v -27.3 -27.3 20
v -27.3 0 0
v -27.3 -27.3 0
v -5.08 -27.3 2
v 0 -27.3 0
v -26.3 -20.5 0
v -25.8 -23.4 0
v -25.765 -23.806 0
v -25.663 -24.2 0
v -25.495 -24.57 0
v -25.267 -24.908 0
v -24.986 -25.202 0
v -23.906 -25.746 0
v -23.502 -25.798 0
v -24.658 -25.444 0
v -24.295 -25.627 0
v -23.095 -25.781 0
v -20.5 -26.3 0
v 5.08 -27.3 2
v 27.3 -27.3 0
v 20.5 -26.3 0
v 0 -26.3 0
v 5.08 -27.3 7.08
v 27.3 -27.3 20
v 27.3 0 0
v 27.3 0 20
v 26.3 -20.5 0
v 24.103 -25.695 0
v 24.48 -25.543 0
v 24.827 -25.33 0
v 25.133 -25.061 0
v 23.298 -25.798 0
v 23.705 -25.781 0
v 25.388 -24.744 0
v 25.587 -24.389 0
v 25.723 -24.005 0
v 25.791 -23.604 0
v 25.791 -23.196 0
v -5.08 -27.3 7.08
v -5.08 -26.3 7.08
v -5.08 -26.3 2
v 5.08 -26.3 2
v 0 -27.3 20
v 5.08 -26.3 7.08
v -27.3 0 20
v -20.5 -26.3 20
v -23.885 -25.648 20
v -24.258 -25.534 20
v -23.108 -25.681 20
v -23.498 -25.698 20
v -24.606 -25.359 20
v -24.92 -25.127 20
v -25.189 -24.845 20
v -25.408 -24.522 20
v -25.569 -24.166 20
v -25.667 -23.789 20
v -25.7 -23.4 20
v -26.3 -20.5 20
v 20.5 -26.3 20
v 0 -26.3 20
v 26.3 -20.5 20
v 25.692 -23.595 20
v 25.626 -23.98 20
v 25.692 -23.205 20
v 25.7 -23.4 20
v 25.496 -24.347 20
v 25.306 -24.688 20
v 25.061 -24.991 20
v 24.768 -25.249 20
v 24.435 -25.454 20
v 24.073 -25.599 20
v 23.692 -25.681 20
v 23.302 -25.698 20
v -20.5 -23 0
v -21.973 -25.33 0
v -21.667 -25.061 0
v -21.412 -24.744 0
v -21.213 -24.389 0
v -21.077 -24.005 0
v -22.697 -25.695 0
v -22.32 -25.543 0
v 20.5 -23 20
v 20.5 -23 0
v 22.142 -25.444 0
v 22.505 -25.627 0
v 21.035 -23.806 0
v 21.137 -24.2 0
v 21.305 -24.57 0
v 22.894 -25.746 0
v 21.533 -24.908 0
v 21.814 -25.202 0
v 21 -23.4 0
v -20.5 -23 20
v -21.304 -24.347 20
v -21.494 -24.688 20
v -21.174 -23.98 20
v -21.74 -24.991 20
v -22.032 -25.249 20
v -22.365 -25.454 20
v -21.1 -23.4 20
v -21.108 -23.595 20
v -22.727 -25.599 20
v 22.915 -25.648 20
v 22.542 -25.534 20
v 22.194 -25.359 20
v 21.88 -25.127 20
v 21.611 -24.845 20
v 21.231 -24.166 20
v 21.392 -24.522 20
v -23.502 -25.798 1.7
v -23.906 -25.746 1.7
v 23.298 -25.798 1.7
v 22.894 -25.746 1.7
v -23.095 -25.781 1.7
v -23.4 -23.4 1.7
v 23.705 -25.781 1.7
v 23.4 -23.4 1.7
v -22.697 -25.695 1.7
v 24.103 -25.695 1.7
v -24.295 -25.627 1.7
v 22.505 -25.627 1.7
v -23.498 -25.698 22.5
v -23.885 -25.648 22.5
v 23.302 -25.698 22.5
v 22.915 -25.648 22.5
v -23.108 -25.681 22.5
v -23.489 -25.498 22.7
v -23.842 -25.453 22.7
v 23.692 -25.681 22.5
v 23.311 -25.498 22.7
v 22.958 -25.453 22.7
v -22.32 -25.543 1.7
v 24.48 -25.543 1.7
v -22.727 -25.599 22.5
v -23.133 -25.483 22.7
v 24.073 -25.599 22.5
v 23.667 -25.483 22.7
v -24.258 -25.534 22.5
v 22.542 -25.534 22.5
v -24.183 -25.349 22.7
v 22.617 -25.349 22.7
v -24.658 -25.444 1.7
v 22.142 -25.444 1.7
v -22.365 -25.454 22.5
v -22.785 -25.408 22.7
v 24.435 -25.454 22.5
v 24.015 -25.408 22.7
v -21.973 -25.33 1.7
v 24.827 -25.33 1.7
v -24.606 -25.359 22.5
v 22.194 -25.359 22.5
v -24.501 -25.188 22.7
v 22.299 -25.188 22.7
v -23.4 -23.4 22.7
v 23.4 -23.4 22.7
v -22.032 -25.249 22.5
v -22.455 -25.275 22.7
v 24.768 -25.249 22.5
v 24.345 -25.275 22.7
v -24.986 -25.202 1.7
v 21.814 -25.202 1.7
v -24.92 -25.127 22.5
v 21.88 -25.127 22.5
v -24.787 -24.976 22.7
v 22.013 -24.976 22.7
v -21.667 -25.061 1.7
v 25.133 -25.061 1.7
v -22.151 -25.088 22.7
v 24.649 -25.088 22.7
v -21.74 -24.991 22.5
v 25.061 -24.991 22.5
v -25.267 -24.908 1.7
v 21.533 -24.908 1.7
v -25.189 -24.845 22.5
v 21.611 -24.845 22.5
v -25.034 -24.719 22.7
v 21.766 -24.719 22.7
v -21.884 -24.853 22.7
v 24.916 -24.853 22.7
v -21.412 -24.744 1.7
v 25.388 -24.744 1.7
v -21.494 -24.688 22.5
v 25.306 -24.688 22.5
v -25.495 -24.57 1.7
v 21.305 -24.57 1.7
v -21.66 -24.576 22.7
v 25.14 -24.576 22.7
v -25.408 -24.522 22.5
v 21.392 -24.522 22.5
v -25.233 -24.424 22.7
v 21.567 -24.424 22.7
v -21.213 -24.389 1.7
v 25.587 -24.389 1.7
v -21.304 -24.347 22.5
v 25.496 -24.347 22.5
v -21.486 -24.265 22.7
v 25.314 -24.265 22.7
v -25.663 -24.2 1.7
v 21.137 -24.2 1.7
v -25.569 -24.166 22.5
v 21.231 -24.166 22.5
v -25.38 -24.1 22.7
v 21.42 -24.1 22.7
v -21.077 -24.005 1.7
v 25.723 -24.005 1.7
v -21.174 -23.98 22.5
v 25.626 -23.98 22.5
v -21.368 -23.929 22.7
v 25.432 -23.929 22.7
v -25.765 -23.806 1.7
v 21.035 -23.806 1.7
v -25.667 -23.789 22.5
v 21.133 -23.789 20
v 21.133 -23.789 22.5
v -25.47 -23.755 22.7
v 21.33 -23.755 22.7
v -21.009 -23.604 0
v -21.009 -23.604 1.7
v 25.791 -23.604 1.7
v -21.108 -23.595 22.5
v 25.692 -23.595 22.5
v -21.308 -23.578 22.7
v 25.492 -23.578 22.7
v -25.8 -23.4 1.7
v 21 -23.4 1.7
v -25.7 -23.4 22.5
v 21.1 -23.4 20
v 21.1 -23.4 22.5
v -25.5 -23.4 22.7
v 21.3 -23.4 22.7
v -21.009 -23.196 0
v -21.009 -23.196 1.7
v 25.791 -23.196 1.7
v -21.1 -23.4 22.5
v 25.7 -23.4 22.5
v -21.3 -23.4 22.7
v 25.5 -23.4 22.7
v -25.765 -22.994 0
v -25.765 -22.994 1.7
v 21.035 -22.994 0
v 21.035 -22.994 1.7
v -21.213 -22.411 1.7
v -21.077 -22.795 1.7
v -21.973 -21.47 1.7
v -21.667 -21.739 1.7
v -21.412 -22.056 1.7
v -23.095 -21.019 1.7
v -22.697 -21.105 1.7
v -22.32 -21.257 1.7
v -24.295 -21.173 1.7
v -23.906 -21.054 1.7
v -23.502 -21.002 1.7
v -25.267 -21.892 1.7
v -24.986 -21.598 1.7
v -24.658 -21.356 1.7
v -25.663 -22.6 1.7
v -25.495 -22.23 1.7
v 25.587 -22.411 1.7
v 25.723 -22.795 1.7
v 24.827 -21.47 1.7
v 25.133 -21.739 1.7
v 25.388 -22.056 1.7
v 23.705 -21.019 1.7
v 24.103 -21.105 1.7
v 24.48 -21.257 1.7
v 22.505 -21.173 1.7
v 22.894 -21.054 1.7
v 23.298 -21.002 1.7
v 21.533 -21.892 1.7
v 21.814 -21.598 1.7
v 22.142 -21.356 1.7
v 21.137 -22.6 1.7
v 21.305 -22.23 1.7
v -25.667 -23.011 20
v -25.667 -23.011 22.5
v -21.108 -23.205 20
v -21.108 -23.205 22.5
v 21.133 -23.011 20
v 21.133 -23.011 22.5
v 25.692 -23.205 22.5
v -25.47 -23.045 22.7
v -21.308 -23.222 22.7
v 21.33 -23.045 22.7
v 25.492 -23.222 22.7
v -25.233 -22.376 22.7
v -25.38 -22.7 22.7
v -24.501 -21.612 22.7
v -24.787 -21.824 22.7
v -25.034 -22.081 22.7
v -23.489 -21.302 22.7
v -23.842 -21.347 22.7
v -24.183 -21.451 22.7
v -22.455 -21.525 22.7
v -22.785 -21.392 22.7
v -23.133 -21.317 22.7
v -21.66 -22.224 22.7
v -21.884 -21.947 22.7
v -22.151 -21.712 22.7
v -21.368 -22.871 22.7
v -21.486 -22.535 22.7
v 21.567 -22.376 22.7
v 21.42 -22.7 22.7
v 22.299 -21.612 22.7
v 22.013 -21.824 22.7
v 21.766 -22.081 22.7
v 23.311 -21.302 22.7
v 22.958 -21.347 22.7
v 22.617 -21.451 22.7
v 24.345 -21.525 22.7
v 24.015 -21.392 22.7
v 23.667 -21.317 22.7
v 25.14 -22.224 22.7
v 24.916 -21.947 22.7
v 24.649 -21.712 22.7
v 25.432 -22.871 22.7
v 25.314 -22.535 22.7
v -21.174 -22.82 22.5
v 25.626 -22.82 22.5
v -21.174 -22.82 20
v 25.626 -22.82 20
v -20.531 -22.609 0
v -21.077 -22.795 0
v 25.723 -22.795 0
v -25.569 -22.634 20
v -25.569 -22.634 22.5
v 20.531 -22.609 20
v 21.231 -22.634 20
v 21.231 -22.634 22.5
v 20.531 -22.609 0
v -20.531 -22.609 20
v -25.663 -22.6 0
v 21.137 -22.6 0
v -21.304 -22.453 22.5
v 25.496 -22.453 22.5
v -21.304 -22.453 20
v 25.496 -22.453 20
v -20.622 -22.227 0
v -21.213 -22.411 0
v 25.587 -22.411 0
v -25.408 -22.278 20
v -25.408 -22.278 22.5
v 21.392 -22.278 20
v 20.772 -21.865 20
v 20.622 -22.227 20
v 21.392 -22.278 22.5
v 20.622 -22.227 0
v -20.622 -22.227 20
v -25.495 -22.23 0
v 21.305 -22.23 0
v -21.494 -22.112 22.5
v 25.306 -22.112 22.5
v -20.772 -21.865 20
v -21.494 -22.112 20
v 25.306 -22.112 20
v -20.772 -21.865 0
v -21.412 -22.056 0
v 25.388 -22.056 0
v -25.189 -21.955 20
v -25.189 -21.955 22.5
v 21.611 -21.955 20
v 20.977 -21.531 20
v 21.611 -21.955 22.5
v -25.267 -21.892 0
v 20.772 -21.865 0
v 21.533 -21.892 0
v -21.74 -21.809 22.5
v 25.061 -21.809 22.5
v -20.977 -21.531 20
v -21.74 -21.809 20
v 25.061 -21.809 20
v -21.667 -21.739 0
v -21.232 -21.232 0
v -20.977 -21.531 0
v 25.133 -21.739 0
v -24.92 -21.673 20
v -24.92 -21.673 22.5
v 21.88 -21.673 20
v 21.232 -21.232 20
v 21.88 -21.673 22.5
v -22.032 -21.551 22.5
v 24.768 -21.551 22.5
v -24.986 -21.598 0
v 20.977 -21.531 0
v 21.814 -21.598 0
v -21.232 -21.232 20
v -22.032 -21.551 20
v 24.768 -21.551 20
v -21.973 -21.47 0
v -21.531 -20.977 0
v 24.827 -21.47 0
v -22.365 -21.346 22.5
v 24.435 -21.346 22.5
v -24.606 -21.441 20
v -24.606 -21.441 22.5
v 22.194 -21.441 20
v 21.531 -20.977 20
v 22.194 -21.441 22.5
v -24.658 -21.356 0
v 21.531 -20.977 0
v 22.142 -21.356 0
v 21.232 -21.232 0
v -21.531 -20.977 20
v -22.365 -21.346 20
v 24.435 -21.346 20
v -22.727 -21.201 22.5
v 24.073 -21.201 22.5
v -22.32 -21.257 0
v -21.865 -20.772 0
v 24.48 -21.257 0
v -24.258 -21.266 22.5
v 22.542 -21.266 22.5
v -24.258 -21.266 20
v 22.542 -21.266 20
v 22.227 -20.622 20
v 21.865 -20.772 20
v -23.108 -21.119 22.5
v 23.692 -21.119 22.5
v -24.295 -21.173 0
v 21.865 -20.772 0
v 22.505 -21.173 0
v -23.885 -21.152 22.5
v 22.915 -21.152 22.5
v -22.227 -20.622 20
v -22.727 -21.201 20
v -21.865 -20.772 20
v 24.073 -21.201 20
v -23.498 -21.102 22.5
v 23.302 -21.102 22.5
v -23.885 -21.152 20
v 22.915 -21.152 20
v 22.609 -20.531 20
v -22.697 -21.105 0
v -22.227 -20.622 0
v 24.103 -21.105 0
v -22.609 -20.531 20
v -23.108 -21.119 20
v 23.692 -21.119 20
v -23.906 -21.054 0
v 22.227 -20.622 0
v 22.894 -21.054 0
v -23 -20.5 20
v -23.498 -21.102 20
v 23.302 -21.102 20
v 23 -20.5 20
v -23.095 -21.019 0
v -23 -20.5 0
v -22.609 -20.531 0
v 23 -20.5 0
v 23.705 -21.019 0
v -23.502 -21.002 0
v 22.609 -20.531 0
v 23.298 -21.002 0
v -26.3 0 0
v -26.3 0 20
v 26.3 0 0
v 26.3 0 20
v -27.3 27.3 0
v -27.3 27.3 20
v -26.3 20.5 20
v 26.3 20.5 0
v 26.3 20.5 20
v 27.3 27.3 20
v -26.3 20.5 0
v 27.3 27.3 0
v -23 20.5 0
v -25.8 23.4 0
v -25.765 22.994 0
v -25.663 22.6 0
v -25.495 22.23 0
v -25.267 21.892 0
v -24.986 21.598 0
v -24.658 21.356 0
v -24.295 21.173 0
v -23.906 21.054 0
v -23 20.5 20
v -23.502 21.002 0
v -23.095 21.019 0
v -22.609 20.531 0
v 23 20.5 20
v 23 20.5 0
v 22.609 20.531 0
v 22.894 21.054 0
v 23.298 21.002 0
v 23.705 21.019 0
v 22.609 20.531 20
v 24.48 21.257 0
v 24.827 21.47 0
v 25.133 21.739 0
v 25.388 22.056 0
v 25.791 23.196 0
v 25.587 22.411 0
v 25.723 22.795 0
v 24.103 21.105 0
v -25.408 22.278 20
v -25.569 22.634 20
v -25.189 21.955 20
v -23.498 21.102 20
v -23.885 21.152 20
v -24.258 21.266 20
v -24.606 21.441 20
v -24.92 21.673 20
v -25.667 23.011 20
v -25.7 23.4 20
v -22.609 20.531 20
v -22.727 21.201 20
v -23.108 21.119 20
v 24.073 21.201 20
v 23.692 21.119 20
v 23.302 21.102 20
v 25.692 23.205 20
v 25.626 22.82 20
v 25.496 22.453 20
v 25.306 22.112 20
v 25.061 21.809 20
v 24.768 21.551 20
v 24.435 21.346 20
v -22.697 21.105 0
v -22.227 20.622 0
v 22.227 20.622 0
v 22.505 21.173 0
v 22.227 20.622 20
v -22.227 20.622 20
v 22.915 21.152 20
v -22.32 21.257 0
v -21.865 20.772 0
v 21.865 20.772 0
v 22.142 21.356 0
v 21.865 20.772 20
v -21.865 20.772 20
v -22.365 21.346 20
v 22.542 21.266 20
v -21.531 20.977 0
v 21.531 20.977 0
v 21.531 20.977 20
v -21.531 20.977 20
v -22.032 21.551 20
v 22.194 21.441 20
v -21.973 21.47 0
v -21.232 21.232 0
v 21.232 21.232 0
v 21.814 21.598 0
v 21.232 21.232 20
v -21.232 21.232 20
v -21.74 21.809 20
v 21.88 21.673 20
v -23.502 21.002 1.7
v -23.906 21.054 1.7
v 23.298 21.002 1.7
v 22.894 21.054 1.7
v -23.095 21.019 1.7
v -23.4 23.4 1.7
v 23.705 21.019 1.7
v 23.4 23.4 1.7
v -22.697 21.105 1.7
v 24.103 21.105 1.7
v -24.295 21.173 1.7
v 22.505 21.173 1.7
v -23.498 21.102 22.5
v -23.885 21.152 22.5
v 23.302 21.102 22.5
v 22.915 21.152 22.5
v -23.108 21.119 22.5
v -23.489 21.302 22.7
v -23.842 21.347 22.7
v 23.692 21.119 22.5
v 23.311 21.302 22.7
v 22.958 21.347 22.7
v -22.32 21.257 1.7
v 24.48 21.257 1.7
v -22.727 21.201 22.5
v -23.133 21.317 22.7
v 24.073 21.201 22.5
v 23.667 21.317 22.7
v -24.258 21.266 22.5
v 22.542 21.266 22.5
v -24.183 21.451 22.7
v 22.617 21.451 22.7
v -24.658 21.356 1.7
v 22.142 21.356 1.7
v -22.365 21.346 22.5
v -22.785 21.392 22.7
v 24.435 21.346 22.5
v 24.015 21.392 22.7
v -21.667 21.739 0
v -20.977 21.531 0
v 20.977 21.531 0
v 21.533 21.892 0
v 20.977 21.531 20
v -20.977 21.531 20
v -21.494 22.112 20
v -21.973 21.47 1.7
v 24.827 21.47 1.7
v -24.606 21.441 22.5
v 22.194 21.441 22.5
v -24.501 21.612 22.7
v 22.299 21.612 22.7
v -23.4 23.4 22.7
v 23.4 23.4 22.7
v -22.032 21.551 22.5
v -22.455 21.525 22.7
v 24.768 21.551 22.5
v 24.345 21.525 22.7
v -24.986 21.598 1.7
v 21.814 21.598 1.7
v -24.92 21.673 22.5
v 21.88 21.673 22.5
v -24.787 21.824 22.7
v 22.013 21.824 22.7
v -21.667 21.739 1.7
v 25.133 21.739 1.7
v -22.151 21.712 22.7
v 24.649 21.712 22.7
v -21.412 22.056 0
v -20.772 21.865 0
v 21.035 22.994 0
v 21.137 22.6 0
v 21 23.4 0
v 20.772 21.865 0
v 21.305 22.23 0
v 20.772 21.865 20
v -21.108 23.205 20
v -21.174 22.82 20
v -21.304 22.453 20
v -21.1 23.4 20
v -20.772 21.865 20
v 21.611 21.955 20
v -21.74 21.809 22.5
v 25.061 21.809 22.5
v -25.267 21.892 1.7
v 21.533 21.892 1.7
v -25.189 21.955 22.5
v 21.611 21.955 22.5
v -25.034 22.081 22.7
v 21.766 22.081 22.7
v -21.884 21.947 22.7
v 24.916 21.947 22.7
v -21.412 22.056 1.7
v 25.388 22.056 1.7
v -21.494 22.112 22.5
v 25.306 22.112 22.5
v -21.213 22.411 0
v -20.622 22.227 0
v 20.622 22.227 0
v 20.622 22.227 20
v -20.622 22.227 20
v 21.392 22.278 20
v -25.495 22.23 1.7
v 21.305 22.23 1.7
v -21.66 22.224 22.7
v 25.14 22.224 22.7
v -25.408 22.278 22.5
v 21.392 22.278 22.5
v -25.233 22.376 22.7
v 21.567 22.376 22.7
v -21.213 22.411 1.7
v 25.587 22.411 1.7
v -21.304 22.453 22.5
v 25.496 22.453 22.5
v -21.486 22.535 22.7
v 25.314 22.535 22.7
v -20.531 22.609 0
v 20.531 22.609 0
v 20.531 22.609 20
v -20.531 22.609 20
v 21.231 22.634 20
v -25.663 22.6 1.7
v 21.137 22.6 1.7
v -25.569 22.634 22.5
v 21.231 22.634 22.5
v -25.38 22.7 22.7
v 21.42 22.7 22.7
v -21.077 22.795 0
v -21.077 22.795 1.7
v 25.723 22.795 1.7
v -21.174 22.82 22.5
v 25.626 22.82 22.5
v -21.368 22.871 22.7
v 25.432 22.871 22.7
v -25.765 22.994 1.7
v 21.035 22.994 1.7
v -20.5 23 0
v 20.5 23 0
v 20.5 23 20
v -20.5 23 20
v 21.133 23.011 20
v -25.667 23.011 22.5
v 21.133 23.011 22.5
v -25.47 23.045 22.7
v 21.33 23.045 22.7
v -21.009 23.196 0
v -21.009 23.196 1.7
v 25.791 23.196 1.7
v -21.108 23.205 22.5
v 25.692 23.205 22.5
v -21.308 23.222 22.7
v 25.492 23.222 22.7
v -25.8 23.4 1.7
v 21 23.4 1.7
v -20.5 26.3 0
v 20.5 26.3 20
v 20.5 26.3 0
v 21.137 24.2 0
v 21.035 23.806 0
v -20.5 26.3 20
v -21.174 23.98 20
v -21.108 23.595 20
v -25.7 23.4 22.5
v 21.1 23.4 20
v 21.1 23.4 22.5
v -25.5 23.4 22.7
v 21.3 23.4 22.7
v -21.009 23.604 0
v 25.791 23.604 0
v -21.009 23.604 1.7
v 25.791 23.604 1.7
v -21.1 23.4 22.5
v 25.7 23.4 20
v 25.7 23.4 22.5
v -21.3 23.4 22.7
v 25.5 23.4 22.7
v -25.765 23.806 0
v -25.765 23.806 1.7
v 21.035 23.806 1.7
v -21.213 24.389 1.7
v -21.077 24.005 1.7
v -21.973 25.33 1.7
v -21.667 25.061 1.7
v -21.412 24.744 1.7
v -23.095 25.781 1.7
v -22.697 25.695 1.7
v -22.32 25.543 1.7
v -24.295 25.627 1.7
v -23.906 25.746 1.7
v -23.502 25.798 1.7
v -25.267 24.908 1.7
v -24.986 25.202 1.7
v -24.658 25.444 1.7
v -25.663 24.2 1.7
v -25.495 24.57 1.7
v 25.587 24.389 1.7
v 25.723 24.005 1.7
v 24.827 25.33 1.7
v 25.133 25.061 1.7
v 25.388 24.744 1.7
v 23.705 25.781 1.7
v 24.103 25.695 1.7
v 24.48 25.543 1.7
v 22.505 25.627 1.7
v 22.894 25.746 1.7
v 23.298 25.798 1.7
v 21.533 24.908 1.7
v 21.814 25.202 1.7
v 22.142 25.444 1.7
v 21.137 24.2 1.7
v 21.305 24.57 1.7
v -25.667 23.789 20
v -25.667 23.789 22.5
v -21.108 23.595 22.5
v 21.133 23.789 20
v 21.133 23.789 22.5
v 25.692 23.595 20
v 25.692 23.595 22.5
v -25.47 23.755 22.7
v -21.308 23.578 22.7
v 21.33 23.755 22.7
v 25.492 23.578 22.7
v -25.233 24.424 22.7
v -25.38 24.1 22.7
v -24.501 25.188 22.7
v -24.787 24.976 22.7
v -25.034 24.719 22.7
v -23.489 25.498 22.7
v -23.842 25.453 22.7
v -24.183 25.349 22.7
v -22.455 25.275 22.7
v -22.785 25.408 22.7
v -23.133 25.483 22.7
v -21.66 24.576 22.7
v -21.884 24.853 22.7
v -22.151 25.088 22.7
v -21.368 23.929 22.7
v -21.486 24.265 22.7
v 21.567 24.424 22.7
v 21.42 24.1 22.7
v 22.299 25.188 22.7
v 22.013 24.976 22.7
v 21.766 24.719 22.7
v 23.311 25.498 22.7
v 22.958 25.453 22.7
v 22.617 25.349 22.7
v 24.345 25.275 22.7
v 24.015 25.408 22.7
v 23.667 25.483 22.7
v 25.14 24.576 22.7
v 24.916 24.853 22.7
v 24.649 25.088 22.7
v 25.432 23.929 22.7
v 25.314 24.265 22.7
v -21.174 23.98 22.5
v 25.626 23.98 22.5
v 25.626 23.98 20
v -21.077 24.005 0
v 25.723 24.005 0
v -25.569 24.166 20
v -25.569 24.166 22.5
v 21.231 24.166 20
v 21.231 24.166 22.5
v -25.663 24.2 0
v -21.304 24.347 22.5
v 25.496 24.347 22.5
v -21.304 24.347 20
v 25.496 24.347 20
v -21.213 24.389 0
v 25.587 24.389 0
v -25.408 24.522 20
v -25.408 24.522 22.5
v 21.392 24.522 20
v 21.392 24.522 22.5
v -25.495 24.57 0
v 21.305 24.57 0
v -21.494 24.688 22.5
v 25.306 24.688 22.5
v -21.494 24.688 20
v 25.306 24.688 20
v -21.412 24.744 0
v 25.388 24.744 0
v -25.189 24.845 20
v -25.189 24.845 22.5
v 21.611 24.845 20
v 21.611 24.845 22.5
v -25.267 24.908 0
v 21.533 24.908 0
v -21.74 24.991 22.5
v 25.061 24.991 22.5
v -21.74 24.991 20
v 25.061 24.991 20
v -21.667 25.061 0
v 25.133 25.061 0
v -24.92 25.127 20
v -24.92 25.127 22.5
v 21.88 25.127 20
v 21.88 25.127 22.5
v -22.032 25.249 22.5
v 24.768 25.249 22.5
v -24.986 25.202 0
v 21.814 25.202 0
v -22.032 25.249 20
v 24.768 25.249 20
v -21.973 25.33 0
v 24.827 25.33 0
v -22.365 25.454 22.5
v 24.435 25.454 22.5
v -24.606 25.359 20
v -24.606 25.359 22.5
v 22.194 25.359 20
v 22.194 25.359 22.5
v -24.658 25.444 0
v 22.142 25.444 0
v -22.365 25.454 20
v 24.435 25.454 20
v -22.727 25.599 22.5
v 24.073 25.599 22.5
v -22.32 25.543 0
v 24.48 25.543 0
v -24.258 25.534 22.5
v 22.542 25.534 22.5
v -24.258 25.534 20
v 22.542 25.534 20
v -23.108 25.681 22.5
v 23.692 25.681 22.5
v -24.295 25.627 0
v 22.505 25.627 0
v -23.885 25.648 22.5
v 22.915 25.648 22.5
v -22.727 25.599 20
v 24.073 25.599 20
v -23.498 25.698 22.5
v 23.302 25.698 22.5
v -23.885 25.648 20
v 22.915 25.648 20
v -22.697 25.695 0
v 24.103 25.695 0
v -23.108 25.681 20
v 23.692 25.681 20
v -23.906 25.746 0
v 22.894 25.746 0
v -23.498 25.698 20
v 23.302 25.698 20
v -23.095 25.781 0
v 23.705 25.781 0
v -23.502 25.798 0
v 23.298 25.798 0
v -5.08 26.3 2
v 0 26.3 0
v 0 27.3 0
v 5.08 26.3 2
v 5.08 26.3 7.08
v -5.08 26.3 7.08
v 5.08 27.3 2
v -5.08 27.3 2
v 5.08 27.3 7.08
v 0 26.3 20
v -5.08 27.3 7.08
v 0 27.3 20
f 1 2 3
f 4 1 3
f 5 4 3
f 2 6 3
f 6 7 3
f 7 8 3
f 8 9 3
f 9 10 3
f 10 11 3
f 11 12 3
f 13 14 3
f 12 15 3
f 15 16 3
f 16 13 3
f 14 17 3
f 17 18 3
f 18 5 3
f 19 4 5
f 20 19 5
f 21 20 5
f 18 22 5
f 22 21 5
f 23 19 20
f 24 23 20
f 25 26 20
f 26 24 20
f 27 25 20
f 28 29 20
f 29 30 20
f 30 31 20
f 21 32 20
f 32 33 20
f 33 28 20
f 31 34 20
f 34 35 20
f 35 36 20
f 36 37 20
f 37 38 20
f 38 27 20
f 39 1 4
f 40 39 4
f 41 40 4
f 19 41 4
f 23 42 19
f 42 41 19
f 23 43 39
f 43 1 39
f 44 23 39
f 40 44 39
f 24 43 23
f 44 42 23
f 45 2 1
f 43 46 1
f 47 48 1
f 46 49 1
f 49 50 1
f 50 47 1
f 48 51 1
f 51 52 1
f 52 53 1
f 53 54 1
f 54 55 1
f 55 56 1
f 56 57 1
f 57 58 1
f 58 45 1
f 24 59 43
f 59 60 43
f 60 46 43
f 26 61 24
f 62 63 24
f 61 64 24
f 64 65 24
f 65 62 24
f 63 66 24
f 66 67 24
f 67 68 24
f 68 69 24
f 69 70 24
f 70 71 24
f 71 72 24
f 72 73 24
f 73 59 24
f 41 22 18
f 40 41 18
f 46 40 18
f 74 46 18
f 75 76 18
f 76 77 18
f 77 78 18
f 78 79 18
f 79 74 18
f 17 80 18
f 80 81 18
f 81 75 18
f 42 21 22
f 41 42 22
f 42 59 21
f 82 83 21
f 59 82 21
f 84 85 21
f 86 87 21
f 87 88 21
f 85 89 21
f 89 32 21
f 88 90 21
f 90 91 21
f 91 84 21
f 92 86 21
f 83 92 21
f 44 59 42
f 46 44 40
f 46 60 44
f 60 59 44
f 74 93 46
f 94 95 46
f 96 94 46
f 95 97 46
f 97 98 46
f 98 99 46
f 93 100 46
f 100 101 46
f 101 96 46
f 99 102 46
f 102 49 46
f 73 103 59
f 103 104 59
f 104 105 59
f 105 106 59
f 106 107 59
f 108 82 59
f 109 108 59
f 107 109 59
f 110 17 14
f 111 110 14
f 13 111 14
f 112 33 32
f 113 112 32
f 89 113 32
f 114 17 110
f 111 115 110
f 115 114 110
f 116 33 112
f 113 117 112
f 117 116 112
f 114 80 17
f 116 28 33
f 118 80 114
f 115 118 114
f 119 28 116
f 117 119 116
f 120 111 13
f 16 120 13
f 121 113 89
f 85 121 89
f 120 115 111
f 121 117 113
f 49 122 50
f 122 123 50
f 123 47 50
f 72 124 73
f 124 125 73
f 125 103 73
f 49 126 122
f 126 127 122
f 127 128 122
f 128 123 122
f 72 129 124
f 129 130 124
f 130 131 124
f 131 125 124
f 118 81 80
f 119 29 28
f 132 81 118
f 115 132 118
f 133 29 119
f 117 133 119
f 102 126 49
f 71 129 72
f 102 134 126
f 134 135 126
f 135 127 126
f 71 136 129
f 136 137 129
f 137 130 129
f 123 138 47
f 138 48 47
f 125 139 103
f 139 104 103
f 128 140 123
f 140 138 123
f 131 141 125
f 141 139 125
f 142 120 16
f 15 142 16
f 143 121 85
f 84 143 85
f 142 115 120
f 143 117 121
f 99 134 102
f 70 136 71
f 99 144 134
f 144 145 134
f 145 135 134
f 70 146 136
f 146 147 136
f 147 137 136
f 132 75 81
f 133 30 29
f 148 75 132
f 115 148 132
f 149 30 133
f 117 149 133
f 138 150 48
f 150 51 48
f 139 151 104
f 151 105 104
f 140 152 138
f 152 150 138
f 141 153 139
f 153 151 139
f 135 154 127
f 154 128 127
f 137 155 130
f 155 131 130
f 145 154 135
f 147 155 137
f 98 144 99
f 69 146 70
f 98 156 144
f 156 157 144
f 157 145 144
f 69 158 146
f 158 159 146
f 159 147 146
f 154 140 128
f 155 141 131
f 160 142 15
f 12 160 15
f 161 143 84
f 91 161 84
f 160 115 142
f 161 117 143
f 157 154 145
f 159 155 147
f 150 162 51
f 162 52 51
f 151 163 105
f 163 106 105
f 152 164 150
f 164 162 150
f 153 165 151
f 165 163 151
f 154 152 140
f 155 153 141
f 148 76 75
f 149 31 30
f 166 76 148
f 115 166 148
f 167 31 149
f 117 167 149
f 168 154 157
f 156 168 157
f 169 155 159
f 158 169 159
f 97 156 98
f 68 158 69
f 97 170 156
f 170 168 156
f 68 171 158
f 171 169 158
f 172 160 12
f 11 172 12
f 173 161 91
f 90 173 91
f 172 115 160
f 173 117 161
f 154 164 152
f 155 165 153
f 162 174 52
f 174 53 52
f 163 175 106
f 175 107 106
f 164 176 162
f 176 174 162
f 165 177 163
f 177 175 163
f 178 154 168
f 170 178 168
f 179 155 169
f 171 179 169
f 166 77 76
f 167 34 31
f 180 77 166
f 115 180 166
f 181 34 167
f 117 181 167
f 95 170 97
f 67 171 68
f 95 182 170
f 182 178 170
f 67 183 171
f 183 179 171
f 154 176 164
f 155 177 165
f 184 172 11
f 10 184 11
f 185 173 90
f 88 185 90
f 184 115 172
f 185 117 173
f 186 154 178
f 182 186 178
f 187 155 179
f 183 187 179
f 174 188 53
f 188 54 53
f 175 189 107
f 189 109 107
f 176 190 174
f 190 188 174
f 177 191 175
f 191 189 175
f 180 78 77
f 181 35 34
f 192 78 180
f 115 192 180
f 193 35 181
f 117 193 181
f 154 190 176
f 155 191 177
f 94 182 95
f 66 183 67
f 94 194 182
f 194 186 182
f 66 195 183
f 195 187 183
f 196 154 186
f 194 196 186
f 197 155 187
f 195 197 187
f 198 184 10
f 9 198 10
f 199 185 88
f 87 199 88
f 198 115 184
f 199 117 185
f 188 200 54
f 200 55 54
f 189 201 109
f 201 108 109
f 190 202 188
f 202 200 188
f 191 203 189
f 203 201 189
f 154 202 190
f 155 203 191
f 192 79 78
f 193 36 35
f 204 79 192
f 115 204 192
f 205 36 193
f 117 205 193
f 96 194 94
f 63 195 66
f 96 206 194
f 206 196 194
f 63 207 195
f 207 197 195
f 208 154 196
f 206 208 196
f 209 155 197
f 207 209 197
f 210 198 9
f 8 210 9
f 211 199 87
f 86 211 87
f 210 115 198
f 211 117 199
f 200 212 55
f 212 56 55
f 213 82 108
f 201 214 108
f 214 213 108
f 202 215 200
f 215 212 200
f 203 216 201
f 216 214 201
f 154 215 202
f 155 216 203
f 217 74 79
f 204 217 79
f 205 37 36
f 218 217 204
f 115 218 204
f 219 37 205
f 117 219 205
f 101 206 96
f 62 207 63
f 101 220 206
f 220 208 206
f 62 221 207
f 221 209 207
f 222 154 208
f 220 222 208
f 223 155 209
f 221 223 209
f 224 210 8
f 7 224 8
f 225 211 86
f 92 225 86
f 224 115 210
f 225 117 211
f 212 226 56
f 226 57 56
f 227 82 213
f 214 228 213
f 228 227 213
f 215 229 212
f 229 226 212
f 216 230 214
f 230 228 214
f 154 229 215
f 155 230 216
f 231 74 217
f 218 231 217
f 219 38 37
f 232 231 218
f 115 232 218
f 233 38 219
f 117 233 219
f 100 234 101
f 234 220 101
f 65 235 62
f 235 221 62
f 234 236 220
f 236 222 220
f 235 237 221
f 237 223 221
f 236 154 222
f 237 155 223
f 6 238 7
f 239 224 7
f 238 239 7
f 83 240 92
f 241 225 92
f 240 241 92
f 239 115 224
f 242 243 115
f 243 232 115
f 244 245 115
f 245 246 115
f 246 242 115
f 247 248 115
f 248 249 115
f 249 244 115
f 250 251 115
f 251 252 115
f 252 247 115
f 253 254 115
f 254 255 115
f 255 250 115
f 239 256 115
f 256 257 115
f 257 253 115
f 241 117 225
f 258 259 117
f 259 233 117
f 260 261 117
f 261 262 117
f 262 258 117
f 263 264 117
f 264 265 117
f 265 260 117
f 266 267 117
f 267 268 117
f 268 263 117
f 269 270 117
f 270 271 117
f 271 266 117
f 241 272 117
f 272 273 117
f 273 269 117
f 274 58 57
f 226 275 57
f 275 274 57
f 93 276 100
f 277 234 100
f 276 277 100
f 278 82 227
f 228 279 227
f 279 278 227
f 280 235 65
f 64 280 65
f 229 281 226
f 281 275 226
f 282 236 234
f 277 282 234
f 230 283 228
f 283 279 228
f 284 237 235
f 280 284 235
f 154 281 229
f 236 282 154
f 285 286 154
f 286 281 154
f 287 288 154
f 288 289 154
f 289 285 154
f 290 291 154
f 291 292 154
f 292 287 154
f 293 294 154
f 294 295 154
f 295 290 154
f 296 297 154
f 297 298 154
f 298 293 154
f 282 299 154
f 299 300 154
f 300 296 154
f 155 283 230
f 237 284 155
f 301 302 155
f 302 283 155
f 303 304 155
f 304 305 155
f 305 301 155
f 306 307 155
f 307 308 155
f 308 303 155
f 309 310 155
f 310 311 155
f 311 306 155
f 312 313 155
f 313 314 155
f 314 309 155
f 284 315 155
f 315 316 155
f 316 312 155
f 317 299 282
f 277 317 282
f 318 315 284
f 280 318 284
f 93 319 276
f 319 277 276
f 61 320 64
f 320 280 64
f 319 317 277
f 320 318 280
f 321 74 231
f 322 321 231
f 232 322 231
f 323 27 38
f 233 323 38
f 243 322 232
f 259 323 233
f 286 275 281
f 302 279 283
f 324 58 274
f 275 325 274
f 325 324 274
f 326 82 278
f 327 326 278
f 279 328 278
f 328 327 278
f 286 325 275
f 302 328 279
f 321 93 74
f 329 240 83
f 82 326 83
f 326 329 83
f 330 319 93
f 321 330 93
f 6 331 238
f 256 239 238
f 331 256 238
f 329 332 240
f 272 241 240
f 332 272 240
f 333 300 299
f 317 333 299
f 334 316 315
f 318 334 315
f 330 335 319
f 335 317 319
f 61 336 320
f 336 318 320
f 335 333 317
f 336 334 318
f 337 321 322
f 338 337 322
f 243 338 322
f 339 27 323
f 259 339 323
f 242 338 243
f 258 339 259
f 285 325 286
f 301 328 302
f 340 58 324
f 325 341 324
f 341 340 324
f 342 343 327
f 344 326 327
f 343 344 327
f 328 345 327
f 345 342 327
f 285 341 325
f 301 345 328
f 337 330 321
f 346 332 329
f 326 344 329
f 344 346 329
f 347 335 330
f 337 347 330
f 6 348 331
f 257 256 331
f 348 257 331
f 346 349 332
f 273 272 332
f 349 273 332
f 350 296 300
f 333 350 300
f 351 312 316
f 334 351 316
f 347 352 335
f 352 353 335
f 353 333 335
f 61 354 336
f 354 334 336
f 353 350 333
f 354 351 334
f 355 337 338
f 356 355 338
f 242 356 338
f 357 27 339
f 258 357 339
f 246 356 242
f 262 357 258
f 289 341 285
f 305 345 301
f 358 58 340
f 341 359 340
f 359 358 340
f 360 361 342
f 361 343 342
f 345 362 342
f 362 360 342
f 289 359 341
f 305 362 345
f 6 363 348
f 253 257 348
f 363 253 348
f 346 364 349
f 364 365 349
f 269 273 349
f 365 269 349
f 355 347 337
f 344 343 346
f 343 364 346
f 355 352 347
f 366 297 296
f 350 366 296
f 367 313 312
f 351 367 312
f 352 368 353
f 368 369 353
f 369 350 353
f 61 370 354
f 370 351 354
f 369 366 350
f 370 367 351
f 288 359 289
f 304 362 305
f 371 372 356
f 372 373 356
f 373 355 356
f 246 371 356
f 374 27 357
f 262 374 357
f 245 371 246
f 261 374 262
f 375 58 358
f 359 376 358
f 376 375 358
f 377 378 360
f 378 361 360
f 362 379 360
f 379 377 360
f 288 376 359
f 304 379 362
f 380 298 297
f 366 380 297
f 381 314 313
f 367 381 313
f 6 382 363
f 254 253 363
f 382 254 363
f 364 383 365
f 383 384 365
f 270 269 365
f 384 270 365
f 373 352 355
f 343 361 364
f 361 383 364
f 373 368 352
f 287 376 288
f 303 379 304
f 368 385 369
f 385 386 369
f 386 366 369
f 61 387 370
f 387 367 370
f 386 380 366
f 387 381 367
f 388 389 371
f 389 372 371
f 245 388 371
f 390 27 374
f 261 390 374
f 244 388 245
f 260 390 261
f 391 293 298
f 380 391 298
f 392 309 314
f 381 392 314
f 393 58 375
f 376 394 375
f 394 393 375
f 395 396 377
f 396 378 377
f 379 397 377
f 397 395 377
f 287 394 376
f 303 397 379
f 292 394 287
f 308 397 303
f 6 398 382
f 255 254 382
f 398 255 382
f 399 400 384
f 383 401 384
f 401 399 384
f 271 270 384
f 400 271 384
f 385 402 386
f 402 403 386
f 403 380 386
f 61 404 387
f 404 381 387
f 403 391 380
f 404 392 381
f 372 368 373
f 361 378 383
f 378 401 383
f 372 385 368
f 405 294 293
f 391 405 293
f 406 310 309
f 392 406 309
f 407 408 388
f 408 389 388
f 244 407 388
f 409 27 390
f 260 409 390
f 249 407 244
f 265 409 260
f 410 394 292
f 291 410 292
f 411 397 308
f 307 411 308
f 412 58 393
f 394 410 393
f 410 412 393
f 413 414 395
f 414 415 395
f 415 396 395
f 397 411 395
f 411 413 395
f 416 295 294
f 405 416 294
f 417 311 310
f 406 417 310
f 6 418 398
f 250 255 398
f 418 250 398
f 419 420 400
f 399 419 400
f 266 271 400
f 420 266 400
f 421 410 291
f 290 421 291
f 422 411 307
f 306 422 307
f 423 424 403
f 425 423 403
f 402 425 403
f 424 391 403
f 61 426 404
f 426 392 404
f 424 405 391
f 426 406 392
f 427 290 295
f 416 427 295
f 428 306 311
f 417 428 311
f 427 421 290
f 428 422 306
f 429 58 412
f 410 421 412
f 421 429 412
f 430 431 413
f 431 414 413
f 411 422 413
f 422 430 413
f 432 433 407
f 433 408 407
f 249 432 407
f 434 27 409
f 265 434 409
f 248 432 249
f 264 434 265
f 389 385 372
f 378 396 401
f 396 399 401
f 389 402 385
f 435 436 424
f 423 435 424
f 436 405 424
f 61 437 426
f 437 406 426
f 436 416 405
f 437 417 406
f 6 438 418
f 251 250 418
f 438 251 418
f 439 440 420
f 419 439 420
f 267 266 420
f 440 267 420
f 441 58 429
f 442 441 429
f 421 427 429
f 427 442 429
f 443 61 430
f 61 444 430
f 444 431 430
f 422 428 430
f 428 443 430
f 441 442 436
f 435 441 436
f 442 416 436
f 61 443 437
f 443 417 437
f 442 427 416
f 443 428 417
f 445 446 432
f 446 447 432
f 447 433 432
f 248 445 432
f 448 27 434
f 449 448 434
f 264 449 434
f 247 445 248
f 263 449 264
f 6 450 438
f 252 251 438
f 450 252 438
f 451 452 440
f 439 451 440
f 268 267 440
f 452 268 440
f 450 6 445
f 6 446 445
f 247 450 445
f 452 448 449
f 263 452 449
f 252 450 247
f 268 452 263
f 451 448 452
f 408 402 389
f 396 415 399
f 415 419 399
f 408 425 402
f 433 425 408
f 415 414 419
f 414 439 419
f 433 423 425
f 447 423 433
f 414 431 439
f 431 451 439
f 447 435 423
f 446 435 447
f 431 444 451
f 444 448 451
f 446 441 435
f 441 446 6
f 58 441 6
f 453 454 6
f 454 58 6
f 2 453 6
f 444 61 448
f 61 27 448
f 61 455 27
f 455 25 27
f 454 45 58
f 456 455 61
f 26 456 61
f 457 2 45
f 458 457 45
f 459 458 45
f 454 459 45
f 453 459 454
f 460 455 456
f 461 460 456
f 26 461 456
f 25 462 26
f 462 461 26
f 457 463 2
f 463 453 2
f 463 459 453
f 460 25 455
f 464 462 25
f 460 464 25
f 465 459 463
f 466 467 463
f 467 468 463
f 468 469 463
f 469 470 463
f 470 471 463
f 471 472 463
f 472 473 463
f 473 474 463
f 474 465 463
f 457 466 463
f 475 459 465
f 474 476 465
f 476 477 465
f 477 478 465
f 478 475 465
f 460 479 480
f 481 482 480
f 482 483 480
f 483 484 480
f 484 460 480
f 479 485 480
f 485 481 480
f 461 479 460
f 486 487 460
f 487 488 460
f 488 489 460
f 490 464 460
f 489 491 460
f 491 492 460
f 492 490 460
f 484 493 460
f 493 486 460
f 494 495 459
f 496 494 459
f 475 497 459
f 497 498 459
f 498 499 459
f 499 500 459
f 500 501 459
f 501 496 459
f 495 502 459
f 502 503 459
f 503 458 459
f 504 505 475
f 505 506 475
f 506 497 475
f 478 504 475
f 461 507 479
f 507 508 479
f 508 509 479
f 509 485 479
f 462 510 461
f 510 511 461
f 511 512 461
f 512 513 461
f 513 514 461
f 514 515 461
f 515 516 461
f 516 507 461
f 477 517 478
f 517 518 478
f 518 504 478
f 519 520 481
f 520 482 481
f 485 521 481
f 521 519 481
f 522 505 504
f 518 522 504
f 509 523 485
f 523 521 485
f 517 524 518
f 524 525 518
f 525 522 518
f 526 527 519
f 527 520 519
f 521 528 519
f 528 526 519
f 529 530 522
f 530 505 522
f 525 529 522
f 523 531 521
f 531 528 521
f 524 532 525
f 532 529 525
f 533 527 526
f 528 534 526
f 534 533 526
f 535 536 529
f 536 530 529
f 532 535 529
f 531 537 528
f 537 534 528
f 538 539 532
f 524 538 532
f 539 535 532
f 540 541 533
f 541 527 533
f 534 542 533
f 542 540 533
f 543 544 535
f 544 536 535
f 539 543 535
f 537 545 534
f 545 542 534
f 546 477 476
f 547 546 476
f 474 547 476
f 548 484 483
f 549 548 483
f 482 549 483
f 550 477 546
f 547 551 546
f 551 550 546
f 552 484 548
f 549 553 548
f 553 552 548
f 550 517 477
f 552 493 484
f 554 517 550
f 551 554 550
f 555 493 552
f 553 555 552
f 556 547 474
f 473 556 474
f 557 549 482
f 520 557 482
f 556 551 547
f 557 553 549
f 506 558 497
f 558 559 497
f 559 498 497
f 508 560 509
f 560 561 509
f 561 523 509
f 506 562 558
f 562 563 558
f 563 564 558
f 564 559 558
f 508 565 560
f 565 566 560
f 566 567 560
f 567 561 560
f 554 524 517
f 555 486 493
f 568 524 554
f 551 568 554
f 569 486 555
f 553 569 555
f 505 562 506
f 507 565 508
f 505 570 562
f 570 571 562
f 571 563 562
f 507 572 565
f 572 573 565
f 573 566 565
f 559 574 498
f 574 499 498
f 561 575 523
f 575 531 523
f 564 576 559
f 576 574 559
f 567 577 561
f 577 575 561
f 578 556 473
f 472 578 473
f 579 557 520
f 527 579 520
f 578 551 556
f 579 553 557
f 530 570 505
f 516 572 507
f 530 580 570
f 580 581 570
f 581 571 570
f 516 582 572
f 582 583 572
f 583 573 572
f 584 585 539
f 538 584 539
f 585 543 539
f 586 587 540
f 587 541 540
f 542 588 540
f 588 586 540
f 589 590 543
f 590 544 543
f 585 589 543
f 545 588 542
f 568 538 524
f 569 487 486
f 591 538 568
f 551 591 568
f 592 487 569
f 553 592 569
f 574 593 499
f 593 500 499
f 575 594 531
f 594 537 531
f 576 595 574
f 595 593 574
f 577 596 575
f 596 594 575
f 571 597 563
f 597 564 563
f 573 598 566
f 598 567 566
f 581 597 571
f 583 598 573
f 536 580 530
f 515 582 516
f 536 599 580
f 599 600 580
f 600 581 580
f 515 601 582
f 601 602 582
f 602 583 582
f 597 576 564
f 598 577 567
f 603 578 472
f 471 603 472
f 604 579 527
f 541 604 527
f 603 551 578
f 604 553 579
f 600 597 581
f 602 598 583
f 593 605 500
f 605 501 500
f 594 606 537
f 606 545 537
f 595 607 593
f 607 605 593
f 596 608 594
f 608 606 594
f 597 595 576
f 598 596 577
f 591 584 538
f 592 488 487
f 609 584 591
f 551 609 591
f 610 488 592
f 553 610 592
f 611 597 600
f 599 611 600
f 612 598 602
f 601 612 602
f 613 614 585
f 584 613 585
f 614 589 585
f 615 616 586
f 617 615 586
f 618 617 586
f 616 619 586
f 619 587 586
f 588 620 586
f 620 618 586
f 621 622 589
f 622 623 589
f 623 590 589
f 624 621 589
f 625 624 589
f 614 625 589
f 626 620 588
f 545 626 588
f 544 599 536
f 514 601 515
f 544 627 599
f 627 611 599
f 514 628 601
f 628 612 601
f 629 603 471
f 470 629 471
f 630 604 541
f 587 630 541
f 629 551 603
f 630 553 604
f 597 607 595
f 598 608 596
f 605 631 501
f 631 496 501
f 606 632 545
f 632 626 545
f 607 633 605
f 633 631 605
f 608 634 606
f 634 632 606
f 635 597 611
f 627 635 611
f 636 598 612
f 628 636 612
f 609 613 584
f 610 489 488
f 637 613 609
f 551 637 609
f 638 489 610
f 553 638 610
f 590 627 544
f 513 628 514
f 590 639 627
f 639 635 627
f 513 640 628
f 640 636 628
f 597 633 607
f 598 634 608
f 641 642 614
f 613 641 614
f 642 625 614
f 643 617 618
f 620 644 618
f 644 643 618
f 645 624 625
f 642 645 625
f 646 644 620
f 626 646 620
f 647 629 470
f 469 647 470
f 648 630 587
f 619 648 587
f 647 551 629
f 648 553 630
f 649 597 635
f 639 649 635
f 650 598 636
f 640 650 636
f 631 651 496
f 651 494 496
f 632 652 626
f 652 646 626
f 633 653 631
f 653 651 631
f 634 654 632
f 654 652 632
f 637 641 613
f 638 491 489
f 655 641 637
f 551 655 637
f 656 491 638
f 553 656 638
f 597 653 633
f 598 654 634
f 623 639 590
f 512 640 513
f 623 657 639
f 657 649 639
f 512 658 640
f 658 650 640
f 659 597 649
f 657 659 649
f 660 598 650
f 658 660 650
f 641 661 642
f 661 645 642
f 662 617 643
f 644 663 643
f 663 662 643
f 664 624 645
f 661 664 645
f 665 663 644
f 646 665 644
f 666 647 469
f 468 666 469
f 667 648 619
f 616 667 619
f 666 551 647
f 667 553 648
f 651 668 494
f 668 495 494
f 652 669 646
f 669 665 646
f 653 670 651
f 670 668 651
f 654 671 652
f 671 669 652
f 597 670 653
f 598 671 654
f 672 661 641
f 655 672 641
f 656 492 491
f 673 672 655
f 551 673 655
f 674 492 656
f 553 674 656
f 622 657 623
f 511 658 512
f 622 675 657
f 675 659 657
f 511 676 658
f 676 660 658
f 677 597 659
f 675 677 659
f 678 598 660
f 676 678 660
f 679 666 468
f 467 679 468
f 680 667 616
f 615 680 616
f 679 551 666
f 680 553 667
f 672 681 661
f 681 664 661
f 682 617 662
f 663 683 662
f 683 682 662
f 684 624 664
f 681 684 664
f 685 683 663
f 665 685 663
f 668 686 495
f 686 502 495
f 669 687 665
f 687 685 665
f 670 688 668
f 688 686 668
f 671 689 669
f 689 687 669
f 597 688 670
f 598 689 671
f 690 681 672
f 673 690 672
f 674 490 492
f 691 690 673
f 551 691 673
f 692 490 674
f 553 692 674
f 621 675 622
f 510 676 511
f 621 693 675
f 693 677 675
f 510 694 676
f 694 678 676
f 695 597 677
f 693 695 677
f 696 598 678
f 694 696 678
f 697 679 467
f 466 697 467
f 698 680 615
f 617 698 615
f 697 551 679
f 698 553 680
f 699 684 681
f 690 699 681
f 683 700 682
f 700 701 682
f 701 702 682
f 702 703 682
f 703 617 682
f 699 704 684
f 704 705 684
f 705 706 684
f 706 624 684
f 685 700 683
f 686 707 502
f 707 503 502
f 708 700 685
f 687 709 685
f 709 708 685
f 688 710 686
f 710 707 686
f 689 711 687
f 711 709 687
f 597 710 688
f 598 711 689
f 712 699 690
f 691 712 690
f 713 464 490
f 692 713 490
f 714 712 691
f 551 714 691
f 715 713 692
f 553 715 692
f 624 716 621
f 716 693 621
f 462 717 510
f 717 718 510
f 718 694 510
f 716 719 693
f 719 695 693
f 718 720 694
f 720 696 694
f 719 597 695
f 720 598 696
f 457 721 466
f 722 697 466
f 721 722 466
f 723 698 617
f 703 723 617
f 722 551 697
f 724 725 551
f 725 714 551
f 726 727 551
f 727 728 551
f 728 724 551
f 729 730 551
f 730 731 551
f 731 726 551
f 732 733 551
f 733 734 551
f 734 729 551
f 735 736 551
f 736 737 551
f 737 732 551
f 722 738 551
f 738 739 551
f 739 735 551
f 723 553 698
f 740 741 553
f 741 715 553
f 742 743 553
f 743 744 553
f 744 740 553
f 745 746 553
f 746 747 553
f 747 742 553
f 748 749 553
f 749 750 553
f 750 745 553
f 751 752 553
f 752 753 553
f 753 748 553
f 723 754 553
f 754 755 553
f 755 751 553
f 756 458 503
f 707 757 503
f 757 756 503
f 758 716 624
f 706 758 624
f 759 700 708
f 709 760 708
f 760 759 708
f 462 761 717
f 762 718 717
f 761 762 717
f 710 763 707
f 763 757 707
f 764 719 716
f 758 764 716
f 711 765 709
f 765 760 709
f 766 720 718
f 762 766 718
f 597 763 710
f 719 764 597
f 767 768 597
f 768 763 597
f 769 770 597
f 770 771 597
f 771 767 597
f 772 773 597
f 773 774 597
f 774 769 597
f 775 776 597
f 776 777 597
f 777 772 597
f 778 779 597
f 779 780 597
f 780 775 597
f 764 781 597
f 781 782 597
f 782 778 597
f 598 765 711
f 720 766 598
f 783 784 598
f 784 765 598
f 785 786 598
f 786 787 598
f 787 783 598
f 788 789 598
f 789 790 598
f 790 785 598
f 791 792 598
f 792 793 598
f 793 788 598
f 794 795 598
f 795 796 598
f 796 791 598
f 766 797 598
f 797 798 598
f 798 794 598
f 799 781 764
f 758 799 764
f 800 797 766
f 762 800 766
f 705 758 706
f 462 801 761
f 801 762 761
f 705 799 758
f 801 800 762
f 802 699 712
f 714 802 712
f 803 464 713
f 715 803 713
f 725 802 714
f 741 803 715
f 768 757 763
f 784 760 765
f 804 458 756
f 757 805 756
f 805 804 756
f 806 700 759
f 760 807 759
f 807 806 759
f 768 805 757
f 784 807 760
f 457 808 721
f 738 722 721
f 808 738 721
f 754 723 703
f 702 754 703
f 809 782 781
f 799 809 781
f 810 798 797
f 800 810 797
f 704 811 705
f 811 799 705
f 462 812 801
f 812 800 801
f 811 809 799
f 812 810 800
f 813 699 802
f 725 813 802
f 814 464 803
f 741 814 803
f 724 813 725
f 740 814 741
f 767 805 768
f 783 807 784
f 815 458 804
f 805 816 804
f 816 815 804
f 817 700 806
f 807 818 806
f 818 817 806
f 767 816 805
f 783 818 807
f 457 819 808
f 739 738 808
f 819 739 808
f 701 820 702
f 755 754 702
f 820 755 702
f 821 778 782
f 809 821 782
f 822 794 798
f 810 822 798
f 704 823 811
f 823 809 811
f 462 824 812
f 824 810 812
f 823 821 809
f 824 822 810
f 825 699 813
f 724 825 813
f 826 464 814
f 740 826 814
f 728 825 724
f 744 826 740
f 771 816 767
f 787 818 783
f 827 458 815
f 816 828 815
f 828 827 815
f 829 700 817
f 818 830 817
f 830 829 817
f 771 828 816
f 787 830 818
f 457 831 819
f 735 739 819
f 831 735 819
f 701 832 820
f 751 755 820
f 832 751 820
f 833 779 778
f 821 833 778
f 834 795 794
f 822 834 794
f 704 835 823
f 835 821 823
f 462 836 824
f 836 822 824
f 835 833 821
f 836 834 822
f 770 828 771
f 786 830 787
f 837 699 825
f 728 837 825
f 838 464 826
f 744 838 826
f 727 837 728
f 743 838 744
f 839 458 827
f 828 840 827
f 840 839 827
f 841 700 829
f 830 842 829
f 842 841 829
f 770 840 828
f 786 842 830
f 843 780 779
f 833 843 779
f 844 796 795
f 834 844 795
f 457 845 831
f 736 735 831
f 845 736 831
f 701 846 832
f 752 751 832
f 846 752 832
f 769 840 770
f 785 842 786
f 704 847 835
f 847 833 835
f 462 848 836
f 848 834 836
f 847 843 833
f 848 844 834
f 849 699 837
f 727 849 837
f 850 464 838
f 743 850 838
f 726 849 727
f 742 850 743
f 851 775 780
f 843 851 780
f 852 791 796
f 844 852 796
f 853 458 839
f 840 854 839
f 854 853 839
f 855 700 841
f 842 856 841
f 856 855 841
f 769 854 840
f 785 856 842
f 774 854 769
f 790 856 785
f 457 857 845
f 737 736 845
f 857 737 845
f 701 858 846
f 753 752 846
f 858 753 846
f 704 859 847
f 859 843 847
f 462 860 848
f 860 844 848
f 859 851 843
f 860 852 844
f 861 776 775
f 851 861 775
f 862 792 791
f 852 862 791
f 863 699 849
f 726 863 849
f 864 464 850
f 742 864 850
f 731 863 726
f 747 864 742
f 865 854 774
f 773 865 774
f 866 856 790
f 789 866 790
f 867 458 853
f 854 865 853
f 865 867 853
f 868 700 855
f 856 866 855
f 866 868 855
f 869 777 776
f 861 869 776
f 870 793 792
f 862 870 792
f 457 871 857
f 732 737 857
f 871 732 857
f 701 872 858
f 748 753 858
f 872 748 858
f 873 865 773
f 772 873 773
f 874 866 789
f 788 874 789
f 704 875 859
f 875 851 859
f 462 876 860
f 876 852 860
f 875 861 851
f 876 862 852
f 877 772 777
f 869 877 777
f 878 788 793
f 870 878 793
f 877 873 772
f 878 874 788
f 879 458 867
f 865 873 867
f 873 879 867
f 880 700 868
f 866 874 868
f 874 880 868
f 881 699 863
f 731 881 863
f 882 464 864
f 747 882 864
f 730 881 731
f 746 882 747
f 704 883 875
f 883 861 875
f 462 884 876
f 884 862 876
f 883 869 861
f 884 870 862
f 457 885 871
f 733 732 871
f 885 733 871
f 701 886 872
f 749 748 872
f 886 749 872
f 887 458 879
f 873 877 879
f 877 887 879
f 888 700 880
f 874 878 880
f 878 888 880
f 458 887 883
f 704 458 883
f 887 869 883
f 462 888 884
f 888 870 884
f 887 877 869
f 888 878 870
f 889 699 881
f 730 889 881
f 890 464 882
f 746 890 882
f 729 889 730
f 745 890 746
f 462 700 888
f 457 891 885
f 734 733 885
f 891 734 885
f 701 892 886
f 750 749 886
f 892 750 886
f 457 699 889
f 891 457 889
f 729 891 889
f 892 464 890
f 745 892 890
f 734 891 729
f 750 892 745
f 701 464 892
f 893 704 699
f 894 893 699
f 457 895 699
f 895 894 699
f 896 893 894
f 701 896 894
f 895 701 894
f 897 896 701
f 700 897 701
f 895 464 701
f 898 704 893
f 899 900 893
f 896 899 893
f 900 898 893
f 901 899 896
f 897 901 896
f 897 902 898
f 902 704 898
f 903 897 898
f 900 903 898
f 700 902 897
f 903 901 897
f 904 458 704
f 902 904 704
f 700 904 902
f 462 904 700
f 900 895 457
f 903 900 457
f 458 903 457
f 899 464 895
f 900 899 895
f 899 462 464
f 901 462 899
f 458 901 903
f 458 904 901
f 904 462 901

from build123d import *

# Parameters (mm, degrees)
SKICA1_W                 = 5.8
SKICA1_H                 = 5.8
SKICA1_W_2               = 1
SKICA1_H_2               = 41
SKICA1_W_3               = 41
SKICA1_H_3               = 1
P_IDAT_VYSUNUT_M2_DEPTH  = 20
ZAOBLIT1_R               = 2.5
SKICA2_R                 = 2.4
ODEBRAT_VYSUNUT_M1_DEPTH = 1.7
SKICA3_R                 = 2.3
P_IDAT_VYSUNUT_M3_DEPTH  = 2.7
ZKOSEN_1_SIZE            = 0.2
SKICA4_W                 = 10.16
SKICA4_H                 = 5.08
ODEBRAT_VYSUNUT_M2_DEPTH = 68.7


with BuildPart() as part:
    # Skica1 → Přidat vysunutím2 (new body)
    with BuildSketch(Plane.XY):
        Polygon((-27.3, 27.3), (-27.3, 20.5), (-26.3, 20.5), (-26.3, 26.3), (-20.5, 26.3), (-20.5, 27.3), align=None)
        with Locations((-23.4, 23.4)):
            Rectangle(SKICA1_W, SKICA1_H)
        Polygon((26.3, 20.5), (27.3, 20.5), (27.3, 27.3), (20.5, 27.3), (20.5, 26.3), (26.3, 26.3), align=None)
        with Locations((23.4, 23.4)):
            Rectangle(SKICA1_W, SKICA1_H)
        Polygon((20.5, -26.3), (20.5, -27.3), (27.3, -27.3), (27.3, -20.5), (26.3, -20.5), (26.3, -26.3), align=None)
        with Locations((23.4, -23.4)):
            Rectangle(SKICA1_W, SKICA1_H)
        with Locations((-23.4, -23.4)):
            Rectangle(SKICA1_W, SKICA1_H)
        Polygon((-27.3, -27.3), (-20.5, -27.3), (-20.5, -26.3), (-26.3, -26.3), (-26.3, -20.5), (-27.3, -20.5), align=None)
        with Locations((-26.8, 0)):
            Rectangle(SKICA1_W_2, SKICA1_H_2)
        with Locations((0, -26.8)):
            Rectangle(SKICA1_W_3, SKICA1_H_3)
        with Locations((26.8, 0)):
            Rectangle(SKICA1_W_2, SKICA1_H_2)
        with Locations((0, 26.8)):
            Rectangle(SKICA1_W_3, SKICA1_H_3)
    extrude(amount=P_IDAT_VYSUNUT_M2_DEPTH)

    # Zaoblit1
    zaoblit1_edges = [part.edges().sort_by_distance(p)[0] for p in [
        (20.5, -20.5, 10),
        (20.5, 20.5, 10),
        (-20.5, 20.5, 10),
        (-20.5, -20.5, 10),
    ]]
    fillet(zaoblit1_edges, radius=ZAOBLIT1_R)

    # Skica2 → Odebrat vysunutím1 (cut)
    with BuildSketch(Plane(origin=(0, 0, 0), x_dir=(-1, 0, 0), z_dir=(0, 0, -1))):
        with Locations((-23.4, 23.4)):
            Circle(SKICA2_R)
        with Locations((23.4, 23.4)):
            Circle(SKICA2_R)
        with Locations((23.4, -23.4)):
            Circle(SKICA2_R)
        with Locations((-23.4, -23.4)):
            Circle(SKICA2_R)
    extrude(amount=-ODEBRAT_VYSUNUT_M1_DEPTH, mode=Mode.SUBTRACT)

    # Skica3 → Přidat vysunutím3 (add)
    with BuildSketch(Plane.XY.offset(20)):
        with Locations((-23.4, 23.4)):
            Circle(SKICA3_R)
        with Locations((23.4, 23.4)):
            Circle(SKICA3_R)
        with Locations((23.4, -23.4)):
            Circle(SKICA3_R)
        with Locations((-23.4, -23.4)):
            Circle(SKICA3_R)
    extrude(amount=P_IDAT_VYSUNUT_M3_DEPTH)

    # Zkosení1
    zkosen_1_edges = [part.edges().sort_by_distance(p)[0] for p in [
        (-25.7, 23.4, 22.7),
        (21.1, 23.4, 22.7),
        (21.1, -23.4, 22.7),
        (-25.7, -23.4, 22.7),
    ]]
    chamfer(zkosen_1_edges, length=ZKOSEN_1_SIZE)

    # Skica4 → Odebrat vysunutím2 (cut)
    with BuildSketch(Plane(origin=(0, -27.3, 0), x_dir=(-1, 0, 0), z_dir=(0, -1, 0))):
        with Locations((0, -4.54)):
            Rectangle(SKICA4_W, SKICA4_H)
    extrude(amount=-ODEBRAT_VYSUNUT_M2_DEPTH, mode=Mode.SUBTRACT)


solid = part.part
